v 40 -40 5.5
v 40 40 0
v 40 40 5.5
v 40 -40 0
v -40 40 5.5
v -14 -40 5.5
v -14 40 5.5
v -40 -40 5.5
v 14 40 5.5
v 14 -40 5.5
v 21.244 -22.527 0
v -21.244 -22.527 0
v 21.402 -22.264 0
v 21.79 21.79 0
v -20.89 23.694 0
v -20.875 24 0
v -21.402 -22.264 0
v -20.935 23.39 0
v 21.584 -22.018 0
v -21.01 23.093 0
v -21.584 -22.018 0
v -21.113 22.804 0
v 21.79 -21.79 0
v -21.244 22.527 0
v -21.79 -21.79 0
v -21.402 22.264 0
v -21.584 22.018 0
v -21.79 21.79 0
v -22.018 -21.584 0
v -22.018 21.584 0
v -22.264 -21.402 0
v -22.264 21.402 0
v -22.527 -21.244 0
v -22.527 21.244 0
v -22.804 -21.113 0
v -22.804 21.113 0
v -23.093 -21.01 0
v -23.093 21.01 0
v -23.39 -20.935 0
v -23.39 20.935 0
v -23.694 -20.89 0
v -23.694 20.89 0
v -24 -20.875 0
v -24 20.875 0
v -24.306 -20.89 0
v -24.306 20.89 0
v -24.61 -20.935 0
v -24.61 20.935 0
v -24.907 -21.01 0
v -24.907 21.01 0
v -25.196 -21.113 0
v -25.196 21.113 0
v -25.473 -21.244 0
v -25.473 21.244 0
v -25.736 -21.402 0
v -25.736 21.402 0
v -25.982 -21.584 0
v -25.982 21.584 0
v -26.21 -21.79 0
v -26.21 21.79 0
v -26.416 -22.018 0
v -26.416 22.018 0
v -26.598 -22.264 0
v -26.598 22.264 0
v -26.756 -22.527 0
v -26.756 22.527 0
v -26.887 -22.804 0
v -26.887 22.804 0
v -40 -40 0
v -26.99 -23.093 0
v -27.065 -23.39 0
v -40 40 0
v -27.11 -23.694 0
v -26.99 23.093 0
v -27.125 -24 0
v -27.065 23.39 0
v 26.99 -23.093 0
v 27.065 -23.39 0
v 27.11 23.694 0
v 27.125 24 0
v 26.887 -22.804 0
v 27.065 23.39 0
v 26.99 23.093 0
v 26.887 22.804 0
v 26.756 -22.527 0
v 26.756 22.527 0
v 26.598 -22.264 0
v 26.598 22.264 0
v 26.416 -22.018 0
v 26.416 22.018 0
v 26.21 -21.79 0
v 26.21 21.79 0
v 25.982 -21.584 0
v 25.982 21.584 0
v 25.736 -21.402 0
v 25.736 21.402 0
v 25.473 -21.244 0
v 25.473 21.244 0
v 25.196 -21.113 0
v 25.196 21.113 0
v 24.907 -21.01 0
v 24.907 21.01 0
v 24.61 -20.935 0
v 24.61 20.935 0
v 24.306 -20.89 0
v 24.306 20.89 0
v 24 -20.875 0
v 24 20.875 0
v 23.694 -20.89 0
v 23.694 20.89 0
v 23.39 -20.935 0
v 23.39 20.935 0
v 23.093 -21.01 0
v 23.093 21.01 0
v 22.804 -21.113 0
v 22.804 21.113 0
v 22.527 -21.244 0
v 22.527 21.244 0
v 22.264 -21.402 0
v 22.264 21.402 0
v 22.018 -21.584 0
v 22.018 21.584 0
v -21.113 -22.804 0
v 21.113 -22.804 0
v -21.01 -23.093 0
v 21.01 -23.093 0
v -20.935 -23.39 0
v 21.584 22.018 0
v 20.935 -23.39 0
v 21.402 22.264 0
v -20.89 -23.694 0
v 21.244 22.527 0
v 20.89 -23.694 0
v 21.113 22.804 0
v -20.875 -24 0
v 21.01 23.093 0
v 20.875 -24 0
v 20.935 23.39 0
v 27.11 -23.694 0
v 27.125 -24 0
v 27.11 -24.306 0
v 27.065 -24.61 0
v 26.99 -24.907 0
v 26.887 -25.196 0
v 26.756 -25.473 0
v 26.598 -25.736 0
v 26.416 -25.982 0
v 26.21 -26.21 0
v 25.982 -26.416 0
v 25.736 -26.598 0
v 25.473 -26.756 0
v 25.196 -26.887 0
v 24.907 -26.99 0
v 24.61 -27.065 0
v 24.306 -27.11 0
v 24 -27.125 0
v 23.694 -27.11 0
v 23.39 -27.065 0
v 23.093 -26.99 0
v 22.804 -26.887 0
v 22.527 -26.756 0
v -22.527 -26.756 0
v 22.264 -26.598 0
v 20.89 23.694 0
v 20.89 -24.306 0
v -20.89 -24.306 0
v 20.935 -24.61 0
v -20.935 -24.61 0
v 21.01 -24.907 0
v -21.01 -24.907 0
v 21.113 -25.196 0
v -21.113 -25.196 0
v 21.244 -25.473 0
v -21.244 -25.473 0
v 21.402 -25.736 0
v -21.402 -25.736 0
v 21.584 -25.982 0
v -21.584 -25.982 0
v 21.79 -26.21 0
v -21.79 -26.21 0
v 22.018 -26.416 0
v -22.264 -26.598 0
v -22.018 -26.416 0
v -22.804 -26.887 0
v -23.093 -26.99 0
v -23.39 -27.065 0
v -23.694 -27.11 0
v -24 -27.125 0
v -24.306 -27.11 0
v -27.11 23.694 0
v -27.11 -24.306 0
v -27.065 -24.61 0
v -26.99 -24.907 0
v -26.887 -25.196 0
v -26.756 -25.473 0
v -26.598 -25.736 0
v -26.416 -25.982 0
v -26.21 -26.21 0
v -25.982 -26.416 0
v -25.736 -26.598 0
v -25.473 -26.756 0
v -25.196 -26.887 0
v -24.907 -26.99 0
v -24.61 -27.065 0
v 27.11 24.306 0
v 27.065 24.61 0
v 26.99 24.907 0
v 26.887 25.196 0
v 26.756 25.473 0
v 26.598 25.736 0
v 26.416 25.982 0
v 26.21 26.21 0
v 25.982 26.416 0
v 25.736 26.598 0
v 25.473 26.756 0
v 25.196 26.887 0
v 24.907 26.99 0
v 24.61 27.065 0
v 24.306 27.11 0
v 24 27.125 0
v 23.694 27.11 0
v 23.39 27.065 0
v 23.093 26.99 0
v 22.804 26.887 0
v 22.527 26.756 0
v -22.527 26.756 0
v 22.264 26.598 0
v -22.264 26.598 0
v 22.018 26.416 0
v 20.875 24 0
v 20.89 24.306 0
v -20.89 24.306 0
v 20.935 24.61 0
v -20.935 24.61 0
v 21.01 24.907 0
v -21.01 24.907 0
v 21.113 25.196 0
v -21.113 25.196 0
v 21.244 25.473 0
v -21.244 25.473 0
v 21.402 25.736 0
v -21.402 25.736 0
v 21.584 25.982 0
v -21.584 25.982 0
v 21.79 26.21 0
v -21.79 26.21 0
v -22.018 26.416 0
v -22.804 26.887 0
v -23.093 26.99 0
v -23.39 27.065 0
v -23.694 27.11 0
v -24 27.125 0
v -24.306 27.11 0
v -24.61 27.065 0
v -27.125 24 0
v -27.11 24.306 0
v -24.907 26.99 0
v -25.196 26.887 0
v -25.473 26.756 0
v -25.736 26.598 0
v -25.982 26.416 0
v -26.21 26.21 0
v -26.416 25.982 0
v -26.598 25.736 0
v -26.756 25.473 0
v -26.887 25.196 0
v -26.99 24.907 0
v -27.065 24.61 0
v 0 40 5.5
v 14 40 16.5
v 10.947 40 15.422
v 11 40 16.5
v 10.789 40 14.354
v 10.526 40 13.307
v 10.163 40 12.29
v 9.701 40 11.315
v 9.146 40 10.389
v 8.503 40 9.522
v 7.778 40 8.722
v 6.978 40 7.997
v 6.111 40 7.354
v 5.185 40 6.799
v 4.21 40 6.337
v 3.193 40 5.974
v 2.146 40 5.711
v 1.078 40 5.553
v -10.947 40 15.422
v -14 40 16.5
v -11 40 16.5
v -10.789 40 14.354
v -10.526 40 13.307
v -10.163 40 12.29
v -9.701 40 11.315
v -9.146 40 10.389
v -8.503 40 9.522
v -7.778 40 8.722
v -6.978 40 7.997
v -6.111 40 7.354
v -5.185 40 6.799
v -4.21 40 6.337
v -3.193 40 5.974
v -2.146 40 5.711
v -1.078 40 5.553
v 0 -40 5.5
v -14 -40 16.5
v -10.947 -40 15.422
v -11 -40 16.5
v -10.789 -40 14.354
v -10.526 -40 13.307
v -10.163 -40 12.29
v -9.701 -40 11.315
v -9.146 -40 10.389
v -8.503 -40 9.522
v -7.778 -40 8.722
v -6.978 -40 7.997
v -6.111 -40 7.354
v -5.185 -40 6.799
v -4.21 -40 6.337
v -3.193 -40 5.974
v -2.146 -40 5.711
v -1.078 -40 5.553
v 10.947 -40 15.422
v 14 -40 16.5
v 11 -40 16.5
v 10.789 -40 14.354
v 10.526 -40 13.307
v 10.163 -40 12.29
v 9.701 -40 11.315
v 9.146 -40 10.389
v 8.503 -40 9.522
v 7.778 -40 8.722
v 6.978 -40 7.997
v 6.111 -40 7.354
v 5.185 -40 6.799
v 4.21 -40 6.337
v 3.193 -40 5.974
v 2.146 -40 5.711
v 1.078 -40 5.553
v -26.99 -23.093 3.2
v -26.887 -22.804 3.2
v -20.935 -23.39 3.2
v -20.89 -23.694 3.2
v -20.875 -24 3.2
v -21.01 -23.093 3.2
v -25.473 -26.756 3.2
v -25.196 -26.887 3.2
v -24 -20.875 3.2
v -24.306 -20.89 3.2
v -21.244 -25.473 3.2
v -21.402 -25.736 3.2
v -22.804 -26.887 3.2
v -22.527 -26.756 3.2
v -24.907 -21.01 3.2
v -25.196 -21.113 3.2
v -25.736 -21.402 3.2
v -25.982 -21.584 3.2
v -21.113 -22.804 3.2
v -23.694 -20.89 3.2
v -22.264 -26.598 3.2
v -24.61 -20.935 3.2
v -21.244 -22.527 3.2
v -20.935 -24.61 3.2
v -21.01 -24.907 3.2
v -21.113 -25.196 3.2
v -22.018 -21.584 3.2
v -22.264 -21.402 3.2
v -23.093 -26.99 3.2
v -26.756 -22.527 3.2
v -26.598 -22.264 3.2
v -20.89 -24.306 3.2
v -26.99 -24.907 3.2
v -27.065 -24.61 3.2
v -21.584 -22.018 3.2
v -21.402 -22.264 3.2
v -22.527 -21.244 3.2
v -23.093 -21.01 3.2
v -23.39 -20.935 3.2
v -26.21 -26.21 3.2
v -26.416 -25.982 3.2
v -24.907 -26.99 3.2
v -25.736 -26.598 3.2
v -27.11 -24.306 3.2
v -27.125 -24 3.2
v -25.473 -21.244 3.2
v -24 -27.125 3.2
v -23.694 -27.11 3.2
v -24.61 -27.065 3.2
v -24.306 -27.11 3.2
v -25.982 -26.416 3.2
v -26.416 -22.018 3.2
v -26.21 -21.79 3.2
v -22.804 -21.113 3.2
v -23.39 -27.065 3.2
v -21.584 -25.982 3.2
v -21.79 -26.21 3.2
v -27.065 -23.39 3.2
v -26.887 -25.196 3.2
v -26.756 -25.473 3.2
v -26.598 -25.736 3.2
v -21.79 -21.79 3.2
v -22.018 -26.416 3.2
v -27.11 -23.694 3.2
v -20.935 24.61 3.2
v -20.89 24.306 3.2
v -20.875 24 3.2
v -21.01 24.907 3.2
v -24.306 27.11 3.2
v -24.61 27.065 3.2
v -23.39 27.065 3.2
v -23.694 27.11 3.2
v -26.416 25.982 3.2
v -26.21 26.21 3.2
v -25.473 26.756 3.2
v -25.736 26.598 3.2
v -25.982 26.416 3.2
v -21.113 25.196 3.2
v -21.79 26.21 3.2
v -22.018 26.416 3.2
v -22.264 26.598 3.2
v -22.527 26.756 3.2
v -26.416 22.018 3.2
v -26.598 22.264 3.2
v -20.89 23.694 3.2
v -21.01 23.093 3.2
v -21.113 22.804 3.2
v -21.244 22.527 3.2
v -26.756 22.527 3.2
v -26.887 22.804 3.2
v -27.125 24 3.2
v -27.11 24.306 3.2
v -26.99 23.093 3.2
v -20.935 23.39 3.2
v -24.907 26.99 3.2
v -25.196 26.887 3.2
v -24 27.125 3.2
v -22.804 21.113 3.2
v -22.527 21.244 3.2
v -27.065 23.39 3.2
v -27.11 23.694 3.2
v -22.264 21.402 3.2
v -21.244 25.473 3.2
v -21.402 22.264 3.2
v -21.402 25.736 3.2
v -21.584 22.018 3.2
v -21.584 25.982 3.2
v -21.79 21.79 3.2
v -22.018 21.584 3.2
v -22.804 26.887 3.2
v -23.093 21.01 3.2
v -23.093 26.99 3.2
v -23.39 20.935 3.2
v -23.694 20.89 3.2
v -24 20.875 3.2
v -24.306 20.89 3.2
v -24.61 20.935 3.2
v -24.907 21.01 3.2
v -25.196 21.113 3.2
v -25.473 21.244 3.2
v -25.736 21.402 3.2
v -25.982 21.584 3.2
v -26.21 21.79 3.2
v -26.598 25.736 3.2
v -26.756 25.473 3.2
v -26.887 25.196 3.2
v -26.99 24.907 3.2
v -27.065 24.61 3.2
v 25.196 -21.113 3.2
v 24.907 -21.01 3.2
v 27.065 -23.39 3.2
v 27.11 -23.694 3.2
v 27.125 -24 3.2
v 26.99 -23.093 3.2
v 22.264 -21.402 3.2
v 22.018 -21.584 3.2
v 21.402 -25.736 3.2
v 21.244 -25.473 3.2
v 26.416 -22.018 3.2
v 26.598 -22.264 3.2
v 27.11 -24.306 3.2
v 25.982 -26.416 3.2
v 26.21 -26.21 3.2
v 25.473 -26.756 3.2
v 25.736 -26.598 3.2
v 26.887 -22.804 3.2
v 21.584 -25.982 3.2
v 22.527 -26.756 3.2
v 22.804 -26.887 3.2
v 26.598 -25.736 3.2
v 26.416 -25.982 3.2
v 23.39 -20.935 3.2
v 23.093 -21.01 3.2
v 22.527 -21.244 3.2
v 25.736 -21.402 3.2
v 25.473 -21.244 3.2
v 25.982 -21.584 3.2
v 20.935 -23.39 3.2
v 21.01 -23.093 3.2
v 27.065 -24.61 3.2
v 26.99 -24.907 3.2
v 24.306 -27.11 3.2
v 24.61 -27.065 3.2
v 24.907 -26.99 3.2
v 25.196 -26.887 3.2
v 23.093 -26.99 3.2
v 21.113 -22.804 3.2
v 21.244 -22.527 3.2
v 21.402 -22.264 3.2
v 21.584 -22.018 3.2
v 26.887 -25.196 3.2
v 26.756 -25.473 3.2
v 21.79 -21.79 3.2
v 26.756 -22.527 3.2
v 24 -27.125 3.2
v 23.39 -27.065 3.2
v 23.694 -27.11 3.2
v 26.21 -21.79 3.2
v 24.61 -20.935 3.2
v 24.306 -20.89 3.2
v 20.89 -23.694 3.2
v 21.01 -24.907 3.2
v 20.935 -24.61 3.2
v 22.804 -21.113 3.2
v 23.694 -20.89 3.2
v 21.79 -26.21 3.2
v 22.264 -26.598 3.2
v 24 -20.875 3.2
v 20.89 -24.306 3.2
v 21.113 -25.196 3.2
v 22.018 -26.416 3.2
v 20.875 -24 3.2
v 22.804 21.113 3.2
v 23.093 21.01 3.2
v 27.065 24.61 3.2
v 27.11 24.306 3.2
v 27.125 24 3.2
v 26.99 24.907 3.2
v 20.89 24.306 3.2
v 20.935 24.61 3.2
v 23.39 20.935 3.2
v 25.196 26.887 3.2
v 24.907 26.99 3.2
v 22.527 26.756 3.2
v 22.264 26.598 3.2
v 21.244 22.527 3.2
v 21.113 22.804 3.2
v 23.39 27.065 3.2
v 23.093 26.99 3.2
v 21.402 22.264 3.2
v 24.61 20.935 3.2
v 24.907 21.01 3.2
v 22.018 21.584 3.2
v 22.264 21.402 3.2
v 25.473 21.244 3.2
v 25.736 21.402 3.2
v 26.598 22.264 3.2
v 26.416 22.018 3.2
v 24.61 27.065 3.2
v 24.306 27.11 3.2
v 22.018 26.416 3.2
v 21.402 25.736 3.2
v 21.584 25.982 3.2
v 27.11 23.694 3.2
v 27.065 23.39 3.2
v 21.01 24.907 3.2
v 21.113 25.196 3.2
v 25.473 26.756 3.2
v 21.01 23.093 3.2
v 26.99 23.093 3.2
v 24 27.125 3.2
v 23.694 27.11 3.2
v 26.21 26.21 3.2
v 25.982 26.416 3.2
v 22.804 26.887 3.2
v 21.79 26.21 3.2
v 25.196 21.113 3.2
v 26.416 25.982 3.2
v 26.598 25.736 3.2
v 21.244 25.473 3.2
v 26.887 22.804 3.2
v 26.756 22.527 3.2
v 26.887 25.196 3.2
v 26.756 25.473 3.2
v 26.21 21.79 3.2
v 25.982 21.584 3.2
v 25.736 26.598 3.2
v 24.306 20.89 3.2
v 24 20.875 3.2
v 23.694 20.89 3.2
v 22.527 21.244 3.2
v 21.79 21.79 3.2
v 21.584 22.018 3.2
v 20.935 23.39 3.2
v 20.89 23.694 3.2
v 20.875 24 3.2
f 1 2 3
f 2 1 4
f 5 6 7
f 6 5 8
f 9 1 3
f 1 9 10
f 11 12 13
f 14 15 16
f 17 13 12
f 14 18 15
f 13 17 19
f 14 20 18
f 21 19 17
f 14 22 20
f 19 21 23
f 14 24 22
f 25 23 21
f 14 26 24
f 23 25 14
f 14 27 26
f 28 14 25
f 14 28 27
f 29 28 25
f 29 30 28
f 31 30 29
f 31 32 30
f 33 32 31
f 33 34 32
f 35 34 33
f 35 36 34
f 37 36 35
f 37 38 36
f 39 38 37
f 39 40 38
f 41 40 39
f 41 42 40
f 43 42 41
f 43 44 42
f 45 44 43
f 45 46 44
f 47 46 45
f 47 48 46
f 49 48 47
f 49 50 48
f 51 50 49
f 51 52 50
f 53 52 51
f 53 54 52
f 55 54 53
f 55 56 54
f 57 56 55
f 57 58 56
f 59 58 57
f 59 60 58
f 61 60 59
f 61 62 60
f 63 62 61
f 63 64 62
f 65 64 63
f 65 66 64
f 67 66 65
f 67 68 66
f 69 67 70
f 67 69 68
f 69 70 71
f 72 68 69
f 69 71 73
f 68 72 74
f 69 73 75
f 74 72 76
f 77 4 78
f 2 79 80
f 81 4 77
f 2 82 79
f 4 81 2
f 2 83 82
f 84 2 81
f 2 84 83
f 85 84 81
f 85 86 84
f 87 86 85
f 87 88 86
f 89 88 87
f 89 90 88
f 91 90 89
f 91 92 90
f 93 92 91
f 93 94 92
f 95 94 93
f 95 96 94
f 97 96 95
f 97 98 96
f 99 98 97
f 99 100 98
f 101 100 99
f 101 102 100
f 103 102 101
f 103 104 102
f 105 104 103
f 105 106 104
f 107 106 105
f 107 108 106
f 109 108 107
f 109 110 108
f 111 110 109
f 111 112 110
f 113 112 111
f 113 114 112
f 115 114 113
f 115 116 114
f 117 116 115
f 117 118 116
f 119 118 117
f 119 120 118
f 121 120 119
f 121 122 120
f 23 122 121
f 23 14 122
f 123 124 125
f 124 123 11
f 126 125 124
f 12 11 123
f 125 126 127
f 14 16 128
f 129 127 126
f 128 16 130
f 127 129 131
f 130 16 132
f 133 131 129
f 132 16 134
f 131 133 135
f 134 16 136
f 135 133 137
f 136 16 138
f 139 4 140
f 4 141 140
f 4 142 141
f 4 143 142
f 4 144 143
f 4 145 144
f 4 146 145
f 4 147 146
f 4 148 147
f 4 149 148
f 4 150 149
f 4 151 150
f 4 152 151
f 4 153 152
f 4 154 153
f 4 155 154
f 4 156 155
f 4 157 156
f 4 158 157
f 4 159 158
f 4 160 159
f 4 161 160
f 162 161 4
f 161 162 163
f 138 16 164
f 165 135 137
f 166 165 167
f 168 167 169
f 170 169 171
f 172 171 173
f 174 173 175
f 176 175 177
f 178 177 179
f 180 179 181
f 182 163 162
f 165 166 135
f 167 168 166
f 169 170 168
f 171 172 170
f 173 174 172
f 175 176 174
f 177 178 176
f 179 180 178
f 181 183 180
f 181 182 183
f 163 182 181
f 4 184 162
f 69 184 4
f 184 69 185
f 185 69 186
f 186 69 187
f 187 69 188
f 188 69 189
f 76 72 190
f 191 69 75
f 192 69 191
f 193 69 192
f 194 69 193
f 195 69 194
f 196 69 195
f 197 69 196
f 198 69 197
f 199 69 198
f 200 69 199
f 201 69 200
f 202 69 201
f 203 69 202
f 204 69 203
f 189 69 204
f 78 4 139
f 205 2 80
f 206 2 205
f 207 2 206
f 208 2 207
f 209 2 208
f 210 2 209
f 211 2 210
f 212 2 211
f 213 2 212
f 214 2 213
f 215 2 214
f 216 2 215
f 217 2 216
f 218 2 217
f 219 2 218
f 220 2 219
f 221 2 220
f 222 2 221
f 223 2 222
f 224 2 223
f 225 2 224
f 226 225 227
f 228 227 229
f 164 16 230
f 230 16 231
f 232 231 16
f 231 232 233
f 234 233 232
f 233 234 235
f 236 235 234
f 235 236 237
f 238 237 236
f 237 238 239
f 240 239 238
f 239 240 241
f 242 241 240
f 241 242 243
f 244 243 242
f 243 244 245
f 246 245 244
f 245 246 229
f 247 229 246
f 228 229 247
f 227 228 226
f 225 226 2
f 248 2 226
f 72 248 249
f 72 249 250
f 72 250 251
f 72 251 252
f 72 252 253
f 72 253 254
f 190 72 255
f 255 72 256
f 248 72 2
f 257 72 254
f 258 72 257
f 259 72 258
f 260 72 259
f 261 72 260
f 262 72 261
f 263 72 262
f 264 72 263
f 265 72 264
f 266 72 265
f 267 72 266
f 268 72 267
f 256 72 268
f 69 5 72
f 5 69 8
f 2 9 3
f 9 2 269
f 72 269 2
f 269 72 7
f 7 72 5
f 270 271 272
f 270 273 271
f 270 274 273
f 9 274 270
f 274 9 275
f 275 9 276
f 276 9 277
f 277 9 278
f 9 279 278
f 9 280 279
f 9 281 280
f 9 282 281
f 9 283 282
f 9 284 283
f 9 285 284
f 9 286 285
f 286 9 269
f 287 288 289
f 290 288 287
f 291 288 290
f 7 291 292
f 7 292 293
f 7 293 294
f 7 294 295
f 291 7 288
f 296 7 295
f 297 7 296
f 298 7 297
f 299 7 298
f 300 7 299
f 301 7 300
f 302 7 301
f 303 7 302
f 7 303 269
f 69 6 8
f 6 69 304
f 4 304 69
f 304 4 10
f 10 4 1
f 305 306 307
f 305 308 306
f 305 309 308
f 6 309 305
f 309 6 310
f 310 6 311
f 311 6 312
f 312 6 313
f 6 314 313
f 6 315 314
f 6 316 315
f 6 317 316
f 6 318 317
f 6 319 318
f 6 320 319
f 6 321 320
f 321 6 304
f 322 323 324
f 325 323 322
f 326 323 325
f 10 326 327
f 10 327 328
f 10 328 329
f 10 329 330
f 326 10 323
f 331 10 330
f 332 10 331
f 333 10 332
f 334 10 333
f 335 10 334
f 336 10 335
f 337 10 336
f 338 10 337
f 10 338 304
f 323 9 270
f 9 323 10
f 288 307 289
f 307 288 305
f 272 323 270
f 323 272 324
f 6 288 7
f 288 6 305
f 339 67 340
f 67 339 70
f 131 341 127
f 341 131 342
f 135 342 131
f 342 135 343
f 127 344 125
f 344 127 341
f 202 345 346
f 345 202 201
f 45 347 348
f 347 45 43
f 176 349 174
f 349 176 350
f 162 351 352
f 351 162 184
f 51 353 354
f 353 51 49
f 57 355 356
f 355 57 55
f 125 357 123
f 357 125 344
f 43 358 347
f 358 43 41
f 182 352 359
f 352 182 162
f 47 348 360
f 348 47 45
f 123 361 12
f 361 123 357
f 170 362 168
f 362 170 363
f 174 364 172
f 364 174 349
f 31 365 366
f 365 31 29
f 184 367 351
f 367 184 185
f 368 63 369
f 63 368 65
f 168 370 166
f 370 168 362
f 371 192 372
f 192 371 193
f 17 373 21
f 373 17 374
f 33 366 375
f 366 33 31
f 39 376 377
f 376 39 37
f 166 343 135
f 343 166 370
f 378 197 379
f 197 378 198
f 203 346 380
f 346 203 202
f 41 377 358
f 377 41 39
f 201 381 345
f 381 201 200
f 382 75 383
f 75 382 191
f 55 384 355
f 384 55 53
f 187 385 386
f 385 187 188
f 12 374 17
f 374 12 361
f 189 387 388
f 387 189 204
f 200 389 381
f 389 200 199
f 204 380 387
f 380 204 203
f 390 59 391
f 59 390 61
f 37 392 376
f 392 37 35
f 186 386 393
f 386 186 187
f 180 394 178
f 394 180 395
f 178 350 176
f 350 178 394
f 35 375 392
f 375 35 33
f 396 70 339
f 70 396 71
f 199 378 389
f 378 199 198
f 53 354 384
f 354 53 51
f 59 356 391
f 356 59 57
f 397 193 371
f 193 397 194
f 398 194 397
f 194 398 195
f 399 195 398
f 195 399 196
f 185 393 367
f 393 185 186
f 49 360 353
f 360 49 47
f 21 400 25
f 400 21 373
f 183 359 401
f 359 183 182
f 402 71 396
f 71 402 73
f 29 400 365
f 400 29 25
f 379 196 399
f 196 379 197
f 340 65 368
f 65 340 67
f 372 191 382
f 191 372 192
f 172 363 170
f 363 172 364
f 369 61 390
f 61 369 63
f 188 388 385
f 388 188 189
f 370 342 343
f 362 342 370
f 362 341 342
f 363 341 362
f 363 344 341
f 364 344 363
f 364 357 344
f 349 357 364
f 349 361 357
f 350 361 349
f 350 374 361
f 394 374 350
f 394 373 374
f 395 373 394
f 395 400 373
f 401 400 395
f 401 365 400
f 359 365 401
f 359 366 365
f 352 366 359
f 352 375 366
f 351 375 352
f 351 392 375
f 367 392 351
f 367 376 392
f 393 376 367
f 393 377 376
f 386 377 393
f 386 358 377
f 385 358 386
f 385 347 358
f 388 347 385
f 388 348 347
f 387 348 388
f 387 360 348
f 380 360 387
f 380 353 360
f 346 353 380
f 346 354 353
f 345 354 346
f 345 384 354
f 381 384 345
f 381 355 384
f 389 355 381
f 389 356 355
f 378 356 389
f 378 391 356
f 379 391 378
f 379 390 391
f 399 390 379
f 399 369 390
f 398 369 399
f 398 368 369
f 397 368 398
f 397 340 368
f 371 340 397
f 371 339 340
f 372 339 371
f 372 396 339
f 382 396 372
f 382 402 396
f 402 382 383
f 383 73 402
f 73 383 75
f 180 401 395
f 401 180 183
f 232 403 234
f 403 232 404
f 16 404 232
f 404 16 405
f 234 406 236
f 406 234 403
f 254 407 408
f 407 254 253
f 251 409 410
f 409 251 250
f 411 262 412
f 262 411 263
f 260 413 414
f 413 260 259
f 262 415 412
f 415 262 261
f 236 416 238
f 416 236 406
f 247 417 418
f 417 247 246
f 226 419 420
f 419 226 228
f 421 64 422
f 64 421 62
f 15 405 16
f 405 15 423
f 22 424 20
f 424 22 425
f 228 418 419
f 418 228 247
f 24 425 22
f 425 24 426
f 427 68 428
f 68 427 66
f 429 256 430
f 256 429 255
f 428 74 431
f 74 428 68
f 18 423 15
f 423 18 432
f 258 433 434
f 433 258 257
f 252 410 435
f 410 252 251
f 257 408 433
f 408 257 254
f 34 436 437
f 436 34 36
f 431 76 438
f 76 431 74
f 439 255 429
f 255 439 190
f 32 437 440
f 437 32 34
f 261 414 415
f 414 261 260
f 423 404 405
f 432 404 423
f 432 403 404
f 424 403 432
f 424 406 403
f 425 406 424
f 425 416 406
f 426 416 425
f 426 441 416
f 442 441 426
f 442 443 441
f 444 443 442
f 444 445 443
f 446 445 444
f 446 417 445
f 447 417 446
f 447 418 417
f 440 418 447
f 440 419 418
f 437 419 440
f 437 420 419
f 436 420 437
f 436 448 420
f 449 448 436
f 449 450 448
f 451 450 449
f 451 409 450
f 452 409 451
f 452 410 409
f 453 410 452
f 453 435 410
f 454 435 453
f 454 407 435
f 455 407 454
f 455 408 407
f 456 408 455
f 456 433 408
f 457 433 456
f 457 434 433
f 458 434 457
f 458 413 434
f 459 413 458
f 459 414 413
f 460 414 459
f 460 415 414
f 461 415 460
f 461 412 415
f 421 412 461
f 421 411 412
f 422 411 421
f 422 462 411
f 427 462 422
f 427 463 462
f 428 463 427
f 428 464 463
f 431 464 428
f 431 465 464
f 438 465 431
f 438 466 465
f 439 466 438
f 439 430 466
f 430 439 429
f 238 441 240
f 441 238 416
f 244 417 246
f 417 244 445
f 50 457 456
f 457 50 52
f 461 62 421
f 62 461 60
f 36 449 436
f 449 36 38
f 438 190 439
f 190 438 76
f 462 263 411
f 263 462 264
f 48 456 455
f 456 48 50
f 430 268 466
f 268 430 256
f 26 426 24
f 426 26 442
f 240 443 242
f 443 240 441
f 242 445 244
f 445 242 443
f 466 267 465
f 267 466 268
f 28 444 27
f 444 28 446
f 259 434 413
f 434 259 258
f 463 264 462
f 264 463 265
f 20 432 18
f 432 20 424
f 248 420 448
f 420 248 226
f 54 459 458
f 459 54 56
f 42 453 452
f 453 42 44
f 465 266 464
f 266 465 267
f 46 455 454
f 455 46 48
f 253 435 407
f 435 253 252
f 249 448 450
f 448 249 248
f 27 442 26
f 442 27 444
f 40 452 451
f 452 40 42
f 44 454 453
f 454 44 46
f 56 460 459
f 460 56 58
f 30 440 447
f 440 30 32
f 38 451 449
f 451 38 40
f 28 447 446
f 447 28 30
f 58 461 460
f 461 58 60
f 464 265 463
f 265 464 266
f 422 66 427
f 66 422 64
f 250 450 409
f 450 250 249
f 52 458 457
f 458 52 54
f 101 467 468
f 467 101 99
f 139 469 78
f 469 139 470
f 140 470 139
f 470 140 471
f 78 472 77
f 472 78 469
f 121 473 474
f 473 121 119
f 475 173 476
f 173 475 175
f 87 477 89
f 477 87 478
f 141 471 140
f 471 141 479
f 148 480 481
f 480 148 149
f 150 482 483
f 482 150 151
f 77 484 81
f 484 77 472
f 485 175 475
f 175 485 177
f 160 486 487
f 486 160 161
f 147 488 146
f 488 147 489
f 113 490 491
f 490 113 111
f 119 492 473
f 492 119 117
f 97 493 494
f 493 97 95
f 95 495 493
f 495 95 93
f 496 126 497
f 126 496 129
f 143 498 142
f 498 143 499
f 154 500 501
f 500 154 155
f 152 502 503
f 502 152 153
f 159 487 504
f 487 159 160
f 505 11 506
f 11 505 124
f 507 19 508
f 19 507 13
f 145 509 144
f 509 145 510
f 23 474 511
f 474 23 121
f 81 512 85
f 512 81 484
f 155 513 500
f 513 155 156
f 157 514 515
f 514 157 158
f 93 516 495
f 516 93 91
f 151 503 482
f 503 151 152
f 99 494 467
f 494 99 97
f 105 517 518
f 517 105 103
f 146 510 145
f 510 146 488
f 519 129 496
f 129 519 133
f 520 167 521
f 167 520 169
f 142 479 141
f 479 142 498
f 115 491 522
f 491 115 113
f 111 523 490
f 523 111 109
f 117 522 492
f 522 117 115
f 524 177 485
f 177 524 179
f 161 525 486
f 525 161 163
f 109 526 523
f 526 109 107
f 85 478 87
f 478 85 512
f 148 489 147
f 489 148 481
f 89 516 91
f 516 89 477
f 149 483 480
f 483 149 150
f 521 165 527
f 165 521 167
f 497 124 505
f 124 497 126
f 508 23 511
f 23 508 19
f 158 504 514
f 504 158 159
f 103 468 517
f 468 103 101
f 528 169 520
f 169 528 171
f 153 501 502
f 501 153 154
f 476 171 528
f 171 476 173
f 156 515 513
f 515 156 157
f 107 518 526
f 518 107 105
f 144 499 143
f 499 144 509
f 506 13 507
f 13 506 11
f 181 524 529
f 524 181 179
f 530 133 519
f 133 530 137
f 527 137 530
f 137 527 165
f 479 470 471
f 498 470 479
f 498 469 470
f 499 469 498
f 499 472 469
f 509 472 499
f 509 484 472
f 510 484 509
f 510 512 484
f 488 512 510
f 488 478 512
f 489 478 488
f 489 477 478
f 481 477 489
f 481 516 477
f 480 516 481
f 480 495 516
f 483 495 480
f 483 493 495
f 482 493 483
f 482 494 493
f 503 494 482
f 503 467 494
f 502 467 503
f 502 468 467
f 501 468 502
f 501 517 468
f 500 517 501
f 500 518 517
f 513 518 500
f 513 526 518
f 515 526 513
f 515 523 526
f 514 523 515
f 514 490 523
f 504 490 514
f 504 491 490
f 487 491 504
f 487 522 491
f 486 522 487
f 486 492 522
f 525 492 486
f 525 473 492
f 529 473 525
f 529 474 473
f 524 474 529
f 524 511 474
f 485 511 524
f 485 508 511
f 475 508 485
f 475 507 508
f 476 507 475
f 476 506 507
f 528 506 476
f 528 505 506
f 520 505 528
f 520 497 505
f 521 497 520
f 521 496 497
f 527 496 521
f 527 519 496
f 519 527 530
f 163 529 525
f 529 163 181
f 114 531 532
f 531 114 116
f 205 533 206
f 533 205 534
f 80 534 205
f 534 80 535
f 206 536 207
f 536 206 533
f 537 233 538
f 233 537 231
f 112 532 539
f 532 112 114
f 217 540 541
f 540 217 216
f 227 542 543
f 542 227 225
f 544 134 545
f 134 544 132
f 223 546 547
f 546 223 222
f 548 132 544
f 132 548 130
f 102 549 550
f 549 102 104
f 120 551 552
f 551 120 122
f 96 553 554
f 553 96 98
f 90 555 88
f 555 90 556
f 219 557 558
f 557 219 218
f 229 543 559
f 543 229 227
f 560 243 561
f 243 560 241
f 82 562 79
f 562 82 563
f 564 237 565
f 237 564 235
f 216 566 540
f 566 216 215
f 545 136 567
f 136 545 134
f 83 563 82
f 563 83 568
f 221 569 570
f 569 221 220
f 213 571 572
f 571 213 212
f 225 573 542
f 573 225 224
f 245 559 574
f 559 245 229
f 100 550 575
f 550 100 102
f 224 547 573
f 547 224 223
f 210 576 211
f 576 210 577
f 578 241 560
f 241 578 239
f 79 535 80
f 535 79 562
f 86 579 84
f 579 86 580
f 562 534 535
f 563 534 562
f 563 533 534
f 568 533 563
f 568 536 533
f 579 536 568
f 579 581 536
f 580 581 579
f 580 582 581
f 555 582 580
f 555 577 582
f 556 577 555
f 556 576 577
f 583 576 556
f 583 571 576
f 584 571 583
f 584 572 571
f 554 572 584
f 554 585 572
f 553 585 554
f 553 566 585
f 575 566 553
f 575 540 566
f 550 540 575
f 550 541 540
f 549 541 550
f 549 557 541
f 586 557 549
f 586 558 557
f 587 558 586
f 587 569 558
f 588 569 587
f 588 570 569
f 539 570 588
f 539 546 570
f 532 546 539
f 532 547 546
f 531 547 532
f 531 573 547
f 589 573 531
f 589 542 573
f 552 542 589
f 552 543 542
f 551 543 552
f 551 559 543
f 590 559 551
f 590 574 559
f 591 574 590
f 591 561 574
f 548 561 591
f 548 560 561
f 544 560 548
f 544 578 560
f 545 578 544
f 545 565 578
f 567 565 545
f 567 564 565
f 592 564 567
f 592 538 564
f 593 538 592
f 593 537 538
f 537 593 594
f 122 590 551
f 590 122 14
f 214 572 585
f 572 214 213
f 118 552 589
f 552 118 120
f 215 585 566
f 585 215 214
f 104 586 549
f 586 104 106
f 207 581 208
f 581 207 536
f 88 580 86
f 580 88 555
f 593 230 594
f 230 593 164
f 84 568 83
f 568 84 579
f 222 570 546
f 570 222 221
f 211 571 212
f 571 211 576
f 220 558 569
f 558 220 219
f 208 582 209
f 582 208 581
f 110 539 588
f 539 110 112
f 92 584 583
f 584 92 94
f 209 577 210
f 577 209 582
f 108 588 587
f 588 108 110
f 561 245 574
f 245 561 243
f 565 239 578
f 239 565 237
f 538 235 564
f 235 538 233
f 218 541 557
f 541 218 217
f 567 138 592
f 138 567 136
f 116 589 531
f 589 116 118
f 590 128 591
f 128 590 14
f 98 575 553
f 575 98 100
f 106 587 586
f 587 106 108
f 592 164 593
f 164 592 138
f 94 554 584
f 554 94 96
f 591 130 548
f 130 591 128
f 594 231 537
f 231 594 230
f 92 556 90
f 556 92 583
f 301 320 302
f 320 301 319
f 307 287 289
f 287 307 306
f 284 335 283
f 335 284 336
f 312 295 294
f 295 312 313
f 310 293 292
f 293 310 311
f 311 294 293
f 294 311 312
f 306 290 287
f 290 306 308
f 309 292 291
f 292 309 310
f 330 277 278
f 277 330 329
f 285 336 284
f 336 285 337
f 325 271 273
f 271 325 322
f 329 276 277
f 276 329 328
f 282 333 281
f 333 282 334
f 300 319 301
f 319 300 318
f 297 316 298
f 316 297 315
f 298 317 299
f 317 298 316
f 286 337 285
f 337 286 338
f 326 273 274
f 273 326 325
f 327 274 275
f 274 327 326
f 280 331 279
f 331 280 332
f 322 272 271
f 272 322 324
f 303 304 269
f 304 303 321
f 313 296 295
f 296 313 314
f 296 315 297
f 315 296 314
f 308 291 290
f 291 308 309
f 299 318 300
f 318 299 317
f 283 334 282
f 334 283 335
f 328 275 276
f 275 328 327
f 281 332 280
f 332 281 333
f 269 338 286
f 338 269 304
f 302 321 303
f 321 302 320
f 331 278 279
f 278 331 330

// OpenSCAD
$fn = 64;

// Tile
tile_size = 80;
tile_thickness = 5.5;

// Track
track_width = 28;
track_height = 11;
channel_radius = 11;

// Magnets
magnet_diameter = 6;
magnet_thickness = 3;
magnet_clearance = 0.25;
magnet_extra_depth = 0.2;
magnet_spacing = 24;

module track_body() {
    union() {
        translate([-tile_size/2, -tile_size/2, 0])
            cube([tile_size, tile_size, tile_thickness]);

        translate([
            -track_width/2,
            -tile_size/2,
            tile_thickness
        ])
            cube([track_width, tile_size, track_height]);
    }
}

module marble_channel() {
    translate([
        0,
        tile_size/2 + 0.1,
        tile_thickness + track_height
    ])
        rotate([90, 0, 0])
            cylinder(
                r=channel_radius,
                h=tile_size + 0.2
            );
}

module magnet_pockets() {
    for (x = [-magnet_spacing, magnet_spacing])
        for (y = [-magnet_spacing, magnet_spacing])
            translate([x, y, -0.05])
                cylinder(
                    d=magnet_diameter + magnet_clearance,
                    h=magnet_thickness + magnet_extra_depth + 0.05
                );
}

module straight_track() {
    difference() {
        track_body();
        marble_channel();
        magnet_pockets();
    }
}

straight_track();
